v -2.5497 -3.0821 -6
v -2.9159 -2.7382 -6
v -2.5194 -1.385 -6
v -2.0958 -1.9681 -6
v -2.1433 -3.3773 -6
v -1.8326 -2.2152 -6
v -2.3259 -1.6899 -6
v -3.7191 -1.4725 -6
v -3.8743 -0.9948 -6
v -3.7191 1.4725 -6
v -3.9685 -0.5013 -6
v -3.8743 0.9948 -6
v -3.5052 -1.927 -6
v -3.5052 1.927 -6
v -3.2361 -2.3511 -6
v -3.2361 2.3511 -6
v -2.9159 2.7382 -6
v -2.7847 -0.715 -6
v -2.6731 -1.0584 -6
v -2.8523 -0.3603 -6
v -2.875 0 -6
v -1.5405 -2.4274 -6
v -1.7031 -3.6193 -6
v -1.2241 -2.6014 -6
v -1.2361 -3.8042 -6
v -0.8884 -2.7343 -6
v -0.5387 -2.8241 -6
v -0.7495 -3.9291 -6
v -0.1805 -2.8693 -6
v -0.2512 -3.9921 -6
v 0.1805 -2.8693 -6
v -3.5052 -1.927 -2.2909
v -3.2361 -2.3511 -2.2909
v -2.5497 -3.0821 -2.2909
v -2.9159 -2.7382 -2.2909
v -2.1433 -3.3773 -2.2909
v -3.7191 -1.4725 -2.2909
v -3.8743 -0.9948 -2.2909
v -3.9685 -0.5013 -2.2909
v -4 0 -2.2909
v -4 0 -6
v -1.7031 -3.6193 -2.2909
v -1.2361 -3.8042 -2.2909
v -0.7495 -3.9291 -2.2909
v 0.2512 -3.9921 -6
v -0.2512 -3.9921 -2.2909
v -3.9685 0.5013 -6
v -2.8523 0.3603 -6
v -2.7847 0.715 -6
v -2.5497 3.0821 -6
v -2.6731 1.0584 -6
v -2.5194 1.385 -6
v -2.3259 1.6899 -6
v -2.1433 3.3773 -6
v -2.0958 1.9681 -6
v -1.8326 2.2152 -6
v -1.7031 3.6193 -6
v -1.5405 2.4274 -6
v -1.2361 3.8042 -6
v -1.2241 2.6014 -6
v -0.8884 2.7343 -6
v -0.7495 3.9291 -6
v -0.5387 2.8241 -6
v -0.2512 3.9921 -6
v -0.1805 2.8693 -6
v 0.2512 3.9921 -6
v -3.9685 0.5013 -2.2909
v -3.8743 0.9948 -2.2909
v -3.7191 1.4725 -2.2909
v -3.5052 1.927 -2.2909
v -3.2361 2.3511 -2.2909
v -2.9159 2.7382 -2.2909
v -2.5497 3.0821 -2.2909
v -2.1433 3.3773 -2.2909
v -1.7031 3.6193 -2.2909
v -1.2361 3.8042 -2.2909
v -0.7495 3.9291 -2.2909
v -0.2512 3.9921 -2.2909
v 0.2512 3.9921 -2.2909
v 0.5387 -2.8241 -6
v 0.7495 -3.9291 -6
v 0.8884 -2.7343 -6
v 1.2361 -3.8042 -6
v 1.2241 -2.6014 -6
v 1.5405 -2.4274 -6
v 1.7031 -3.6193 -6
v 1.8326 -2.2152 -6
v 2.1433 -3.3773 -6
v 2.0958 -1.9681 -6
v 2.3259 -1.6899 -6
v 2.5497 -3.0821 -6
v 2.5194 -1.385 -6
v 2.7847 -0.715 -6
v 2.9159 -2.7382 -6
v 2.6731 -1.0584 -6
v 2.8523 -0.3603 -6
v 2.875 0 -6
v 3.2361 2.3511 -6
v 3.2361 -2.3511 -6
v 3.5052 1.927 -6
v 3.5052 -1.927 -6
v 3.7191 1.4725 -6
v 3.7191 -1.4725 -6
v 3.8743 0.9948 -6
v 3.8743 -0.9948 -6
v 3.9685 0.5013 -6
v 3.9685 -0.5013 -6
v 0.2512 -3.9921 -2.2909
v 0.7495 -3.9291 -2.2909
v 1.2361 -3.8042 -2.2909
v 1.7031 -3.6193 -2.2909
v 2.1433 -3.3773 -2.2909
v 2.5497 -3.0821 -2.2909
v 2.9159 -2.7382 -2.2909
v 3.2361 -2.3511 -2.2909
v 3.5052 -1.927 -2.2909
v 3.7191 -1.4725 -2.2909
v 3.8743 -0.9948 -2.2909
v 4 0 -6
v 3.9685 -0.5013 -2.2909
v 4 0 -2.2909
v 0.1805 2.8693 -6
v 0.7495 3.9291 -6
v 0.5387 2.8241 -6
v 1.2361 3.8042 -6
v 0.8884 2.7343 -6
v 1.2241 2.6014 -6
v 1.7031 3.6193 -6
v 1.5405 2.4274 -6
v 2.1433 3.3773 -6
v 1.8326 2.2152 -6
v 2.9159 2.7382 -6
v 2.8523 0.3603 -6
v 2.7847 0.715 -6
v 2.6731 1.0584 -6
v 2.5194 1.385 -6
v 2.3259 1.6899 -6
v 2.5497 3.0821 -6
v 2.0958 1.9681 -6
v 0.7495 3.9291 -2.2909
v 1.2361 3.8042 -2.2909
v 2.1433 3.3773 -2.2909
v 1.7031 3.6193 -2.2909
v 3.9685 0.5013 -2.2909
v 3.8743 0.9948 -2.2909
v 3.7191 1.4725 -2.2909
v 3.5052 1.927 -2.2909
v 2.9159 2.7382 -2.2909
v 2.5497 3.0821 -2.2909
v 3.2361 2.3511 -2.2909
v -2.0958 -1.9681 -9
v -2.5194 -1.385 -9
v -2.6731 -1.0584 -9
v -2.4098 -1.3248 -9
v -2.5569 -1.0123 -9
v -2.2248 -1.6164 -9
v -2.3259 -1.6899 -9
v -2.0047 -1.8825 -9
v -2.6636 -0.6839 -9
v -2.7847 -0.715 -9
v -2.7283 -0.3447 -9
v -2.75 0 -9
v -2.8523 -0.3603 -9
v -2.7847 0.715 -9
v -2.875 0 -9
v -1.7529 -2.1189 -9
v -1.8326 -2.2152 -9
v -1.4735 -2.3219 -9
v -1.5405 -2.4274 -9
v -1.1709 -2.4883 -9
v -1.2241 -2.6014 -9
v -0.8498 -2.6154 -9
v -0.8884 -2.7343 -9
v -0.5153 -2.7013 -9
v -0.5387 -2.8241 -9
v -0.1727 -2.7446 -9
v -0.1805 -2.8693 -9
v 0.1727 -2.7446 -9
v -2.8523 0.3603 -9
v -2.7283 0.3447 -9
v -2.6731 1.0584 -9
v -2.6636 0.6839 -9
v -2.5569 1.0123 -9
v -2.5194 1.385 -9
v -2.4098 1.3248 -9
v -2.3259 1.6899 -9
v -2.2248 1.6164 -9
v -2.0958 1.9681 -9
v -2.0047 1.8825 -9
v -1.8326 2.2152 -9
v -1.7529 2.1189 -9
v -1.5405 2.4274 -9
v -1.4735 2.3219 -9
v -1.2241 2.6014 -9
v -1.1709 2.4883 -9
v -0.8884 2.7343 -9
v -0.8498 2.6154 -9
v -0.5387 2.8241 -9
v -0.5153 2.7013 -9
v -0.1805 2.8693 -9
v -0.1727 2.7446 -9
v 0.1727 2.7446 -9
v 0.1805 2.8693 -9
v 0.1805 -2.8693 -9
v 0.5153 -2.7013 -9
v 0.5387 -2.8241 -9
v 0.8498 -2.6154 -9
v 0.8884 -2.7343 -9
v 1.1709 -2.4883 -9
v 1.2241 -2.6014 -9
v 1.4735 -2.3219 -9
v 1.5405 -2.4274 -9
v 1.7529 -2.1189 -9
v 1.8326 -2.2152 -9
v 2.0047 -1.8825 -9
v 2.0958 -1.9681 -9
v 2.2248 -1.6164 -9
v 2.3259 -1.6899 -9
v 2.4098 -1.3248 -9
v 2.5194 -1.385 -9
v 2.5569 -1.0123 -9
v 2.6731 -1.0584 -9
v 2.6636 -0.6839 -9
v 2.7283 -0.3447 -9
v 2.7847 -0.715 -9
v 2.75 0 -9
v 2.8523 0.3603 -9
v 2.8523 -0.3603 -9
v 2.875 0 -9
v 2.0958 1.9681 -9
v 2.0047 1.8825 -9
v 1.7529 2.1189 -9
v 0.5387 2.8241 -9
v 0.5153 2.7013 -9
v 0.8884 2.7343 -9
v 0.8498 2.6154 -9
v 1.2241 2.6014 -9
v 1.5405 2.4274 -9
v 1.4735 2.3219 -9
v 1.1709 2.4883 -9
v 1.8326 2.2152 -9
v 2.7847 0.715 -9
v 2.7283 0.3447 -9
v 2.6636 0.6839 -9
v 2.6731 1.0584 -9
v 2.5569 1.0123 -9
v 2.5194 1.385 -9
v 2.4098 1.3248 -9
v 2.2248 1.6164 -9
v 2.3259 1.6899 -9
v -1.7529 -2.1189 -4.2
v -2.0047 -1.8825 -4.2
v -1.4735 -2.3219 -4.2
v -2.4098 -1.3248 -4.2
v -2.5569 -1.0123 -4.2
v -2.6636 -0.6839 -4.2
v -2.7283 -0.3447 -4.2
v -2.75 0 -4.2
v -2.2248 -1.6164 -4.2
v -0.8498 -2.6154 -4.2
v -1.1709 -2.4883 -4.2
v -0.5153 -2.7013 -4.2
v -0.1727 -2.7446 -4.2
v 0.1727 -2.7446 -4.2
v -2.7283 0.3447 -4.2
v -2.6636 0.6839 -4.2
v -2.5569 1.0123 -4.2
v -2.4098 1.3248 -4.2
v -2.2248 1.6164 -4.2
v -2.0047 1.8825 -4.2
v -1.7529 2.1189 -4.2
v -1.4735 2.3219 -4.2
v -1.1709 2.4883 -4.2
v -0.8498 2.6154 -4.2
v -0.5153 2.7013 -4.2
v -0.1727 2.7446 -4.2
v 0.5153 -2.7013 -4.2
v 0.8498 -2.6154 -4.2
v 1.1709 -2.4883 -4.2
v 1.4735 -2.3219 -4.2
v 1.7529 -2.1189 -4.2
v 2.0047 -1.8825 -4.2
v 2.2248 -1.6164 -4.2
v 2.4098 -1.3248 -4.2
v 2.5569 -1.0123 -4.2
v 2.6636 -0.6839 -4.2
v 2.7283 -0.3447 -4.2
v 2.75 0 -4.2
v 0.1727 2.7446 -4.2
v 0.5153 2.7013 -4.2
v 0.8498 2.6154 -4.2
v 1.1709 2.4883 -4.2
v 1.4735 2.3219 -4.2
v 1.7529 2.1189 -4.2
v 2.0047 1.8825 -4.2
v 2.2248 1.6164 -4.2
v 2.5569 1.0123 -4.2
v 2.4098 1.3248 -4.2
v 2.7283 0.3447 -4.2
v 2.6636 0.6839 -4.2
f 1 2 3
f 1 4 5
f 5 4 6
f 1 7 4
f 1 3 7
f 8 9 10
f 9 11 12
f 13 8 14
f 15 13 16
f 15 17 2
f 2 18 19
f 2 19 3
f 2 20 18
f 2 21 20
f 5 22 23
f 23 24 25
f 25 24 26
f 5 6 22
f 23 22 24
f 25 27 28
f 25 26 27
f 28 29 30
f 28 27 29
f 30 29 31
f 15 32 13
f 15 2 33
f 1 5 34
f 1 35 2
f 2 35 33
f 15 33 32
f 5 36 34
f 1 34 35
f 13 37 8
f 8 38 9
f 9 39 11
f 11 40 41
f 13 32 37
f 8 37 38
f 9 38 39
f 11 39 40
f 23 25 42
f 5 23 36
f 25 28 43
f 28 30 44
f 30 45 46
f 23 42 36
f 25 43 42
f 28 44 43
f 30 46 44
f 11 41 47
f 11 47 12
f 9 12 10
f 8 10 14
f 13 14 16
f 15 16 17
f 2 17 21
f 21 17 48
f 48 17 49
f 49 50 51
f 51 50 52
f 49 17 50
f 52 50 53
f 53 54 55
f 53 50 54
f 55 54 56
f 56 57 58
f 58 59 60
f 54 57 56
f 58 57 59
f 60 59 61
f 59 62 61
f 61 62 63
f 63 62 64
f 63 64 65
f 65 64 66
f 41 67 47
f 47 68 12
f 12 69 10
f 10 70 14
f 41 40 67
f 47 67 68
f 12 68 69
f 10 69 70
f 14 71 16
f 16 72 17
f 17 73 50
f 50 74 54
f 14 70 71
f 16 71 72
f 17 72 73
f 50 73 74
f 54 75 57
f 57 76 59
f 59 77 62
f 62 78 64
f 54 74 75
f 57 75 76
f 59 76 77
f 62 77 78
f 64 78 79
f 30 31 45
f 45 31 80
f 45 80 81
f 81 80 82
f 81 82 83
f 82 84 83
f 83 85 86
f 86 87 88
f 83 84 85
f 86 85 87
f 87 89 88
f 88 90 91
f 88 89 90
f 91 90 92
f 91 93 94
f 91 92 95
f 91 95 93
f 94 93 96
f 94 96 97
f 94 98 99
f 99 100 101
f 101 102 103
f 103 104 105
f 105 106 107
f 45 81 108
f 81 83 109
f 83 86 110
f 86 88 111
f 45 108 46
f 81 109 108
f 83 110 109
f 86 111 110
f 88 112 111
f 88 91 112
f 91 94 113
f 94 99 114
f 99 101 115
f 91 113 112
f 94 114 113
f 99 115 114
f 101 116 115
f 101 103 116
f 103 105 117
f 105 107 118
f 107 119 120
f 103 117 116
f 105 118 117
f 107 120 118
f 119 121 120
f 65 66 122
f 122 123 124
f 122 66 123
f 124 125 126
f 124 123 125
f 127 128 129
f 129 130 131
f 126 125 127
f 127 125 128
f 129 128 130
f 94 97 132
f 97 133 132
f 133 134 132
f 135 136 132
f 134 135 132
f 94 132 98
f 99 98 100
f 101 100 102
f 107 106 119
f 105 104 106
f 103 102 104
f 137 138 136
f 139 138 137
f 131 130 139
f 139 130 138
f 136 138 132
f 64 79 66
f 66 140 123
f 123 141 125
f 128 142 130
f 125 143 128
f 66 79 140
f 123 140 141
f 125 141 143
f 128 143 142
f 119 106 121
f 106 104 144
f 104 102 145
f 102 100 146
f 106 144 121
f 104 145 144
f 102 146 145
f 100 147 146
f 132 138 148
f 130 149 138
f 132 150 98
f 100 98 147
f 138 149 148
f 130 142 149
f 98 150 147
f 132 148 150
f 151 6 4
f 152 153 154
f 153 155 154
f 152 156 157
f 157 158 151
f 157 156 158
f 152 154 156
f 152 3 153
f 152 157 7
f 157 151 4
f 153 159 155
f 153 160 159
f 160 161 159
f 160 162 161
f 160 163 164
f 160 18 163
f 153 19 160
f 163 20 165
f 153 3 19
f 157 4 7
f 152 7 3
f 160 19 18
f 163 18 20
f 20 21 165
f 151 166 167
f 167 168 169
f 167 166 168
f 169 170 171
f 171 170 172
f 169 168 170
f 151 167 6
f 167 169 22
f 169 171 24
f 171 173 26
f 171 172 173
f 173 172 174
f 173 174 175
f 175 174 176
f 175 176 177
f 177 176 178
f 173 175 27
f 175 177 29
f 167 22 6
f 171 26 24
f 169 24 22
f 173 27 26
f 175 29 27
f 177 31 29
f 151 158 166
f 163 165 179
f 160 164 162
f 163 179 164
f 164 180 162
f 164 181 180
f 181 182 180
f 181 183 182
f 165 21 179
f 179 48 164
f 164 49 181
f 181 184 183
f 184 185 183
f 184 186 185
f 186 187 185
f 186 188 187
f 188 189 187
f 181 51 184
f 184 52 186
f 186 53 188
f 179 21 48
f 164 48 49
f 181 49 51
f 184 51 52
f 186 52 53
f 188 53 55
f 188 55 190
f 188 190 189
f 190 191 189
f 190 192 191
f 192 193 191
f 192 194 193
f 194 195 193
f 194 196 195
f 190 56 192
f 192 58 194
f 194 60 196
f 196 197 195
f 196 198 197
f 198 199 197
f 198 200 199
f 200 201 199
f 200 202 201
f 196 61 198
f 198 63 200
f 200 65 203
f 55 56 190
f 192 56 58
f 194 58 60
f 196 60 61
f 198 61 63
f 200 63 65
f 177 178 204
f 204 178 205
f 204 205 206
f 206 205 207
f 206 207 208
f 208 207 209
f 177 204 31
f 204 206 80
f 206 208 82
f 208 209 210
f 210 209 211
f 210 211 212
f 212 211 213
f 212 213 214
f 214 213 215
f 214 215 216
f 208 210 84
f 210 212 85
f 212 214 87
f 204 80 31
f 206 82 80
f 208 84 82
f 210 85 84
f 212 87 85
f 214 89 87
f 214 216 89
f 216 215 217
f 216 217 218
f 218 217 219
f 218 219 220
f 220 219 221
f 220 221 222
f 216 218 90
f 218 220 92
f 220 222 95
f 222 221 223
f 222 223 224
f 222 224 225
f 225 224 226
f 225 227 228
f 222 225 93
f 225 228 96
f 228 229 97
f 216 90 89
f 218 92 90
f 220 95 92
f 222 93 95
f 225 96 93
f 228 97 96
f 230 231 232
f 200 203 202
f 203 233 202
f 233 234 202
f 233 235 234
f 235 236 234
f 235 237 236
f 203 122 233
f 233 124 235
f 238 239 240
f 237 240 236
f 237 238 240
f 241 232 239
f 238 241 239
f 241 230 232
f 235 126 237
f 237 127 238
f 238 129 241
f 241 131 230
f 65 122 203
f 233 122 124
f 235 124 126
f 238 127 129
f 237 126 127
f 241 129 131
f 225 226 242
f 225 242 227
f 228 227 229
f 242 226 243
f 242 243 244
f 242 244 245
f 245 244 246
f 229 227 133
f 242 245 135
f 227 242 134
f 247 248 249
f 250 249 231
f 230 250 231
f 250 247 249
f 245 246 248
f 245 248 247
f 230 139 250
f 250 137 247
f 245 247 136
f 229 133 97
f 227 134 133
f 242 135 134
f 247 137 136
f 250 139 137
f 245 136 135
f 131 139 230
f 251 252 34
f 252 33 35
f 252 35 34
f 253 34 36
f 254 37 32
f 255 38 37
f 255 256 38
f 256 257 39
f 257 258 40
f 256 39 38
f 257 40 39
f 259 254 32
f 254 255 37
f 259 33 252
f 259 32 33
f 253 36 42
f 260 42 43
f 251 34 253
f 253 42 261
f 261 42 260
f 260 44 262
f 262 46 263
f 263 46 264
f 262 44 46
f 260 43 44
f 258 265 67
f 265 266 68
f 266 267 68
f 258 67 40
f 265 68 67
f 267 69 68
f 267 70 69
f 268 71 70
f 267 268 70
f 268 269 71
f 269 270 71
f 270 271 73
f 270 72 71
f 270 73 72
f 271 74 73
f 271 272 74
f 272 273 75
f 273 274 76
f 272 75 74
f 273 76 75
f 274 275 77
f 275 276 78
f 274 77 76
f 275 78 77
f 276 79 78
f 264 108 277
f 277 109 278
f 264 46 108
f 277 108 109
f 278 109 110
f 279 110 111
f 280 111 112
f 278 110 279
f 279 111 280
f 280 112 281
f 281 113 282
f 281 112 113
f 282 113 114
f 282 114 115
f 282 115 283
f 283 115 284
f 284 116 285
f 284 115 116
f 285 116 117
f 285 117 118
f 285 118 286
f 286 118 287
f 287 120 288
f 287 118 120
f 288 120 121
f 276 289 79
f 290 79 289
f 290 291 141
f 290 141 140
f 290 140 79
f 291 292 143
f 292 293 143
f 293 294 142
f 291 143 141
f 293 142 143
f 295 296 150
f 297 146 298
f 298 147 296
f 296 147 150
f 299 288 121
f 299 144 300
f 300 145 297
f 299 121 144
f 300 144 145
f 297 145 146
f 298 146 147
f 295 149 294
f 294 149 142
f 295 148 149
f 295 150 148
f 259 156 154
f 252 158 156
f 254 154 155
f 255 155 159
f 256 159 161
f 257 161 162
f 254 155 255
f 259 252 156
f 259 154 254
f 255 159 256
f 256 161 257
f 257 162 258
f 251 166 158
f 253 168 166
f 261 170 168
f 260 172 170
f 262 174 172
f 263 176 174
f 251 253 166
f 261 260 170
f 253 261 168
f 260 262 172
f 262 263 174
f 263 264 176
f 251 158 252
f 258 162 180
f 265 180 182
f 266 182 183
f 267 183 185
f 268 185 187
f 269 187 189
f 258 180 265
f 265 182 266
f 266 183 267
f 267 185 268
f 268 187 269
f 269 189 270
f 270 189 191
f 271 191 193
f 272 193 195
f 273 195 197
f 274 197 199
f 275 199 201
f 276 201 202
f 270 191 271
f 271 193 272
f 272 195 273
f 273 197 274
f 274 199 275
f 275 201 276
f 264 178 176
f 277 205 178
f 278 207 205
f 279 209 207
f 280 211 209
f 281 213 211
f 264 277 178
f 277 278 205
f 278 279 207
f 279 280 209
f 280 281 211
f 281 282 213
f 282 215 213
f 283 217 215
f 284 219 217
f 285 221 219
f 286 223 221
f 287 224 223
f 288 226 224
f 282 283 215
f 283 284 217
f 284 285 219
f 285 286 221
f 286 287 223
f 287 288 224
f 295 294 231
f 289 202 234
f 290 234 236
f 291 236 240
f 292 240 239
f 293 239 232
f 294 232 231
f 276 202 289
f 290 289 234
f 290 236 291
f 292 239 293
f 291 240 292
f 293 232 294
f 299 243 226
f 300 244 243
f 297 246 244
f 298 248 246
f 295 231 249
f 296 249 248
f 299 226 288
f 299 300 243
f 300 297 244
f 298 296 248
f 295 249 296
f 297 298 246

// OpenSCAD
$fn = 50;

difference() {
	union() {
		translate(v = [0, 0, -6.0]) {
			cylinder(h = 6, r = 4.0);
		}
		#translate(v = [0, 0, -9.0]) {
			cylinder(h = 9, r = 2.875);
		}
	}
	union() {
		translate(v = [0, 0, 0]) {
			rotate(a = [0, 0, 0]) {
				difference() {
					union() {
						translate(v = [0, 0, -9.0]) {
							cylinder(h = 9, r = 2.25);
						}
						translate(v = [0, 0, -4.2]) {
							cylinder(h = 4.2, r1 = 2.75, r2 = 5.5);
						}
						translate(v = [0, 0, -9.0]) {
							cylinder(h = 9, r = 2.75);
						}
						translate(v = [0, 0, -9.0]) {
							cylinder(h = 9, r = 2.25);
						}
					}
					union();
				}
			}
		}
	}
}
